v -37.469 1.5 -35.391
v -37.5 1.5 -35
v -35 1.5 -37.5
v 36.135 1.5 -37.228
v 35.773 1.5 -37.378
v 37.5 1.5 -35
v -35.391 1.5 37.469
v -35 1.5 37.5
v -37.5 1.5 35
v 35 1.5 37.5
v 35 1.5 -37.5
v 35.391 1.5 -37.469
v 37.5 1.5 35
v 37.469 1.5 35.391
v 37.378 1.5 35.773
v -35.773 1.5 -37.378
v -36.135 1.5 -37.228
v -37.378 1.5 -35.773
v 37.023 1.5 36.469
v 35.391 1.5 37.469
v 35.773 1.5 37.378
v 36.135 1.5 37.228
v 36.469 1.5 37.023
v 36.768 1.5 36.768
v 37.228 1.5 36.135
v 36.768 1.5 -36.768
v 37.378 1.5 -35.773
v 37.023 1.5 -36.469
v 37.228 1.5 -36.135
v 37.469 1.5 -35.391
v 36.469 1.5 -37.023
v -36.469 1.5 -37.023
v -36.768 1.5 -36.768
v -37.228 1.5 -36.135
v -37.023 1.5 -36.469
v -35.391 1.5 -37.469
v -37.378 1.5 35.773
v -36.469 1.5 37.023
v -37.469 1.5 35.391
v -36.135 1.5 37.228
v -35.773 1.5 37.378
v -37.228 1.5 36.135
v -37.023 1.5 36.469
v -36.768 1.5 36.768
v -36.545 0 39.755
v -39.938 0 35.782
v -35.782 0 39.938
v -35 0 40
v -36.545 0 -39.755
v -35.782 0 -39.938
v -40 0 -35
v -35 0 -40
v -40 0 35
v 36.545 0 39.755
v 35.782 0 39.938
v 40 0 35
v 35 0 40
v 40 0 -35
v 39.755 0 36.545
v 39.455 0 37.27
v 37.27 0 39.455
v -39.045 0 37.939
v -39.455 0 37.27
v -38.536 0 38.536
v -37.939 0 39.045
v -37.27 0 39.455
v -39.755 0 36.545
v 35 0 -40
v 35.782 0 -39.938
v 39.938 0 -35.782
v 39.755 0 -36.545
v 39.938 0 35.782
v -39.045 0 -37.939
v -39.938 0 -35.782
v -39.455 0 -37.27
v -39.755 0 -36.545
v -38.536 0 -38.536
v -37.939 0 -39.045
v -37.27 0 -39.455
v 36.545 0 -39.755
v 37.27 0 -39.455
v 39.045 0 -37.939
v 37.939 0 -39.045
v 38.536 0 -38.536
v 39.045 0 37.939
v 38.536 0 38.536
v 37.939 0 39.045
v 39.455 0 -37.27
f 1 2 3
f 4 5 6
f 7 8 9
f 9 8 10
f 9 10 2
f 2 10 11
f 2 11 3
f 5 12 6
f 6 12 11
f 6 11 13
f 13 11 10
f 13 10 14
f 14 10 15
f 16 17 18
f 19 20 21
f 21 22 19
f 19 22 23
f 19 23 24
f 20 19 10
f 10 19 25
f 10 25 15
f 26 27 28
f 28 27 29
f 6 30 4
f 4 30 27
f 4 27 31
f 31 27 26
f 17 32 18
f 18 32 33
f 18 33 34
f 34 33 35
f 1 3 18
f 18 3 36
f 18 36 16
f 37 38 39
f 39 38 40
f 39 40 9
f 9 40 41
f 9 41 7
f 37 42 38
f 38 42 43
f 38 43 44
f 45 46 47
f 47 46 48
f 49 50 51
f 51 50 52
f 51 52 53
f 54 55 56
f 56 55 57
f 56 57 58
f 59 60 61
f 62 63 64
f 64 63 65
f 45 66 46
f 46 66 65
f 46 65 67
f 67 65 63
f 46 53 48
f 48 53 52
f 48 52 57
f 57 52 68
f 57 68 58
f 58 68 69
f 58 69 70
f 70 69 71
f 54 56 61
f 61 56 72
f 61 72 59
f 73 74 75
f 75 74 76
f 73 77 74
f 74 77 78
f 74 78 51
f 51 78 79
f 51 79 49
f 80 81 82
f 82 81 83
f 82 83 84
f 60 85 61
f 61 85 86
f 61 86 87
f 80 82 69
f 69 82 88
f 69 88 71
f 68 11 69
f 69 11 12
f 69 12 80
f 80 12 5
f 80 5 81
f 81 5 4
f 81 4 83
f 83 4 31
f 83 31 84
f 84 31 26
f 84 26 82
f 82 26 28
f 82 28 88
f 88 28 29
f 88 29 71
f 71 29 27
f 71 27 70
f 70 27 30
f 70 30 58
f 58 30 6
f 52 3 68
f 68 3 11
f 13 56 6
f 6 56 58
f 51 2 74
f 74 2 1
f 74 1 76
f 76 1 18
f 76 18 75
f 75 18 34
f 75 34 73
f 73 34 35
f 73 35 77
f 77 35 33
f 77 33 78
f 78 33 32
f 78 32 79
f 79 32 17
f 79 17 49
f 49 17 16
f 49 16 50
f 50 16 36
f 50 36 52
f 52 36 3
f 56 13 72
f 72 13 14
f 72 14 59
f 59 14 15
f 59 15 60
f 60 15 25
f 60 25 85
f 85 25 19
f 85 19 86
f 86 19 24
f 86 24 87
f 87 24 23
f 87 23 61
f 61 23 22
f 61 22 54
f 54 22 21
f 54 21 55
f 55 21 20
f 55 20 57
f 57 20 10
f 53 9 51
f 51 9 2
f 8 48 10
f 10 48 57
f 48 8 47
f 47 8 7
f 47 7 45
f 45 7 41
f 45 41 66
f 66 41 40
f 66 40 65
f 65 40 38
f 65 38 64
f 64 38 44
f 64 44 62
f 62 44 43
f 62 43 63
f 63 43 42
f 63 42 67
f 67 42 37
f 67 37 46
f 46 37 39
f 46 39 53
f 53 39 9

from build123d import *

# Parameters (mm, degrees)
BOSS_EXTRUDE1_DEPTH = 1.5
CHAMFER1_SIZE       = 1.5
CHAMFER1_SIZE_2     = 2.5


with BuildPart() as part:
    # Sketch1 → Boss-Extrude1 (new body)
    with BuildSketch(Plane(origin=(0, 0, 0), x_dir=(1, 0, 0), z_dir=(0, 1, 0))):
        with BuildLine():
            Line((-35, 40), (35, 40))
            ThreePointArc((35, 40), (38.535533906, 38.535533906), (40, 35))
            Line((40, 35), (40, -35))
            ThreePointArc((40, -35), (38.535533906, -38.535533906), (35, -40))
            Line((35, -40), (-35, -40))
            ThreePointArc((-35, -40), (-38.535533906, -38.535533906), (-40, -35))
            Line((-40, -35), (-40, 35))
            ThreePointArc((-40, 35), (-38.535533906, 38.535533906), (-35, 40))
        make_face()
    extrude(amount=BOSS_EXTRUDE1_DEPTH)

    # Chamfer1
    # the kernel refuses this chamfer: 2.5, 1.5 mm, written as the material it takes off along each edge
    with BuildSketch(Plane(origin=(-35, 1.5, 35), x_dir=(0, 0, 1), z_dir=(1, 0, 0))) as chamfer1_piece_1:
        Polygon((5, CHAMFER1_SIZE), (5 - CHAMFER1_SIZE_2, 0), (5, 0), align=None)
    revolve(axis=Axis((-35, 1.5, 35), (0, -1, 0)), revolution_arc=90, mode=Mode.SUBTRACT)
    with BuildSketch(Plane(origin=(-40, 1.5, 35), x_dir=(-0.05518620705976808, -0.9984760801092615, 0), z_dir=(0, 0, -1)), Plane(origin=(-35, 1.5, -40), x_dir=(0, -0.9984760801092615, -0.05518620705976808), z_dir=(1, 0, 0)), Plane(origin=(35, 1.5, 40), x_dir=(0, -0.9984760801092615, 0.05518620705976808), z_dir=(-1, 0, 0)), Plane(origin=(40, 1.5, -35), x_dir=(0.05518620705976808, -0.9984760801092615, 0), z_dir=(0, 0, 1))) as chamfer1_piece_2:
        Polygon((CHAMFER1_SIZE * 0.998476080109, -CHAMFER1_SIZE * 0.0551862070598), (-CHAMFER1_SIZE_2 * 0.0551862070598, -CHAMFER1_SIZE_2 * 0.998476080109), (0, 0), align=None)
    extrude(amount=70, mode=Mode.SUBTRACT)
    with BuildSketch(Plane(origin=(-35, 1.5, -35), x_dir=(-1, 0, 0), z_dir=(0, 0, 1))) as chamfer1_piece_3:
        Polygon((5, CHAMFER1_SIZE), (5 - CHAMFER1_SIZE_2, 0), (5, 0), align=None)
    revolve(axis=Axis((-35, 1.5, -35), (0, -1, 0)), revolution_arc=90, mode=Mode.SUBTRACT)
    with BuildSketch(Plane(origin=(35, 1.5, -35), x_dir=(0, 0, -1), z_dir=(-1, 0, 0))) as chamfer1_piece_4:
        Polygon((5, CHAMFER1_SIZE), (5 - CHAMFER1_SIZE_2, 0), (5, 0), align=None)
    revolve(axis=Axis((35, 1.5, -35), (0, -1, 0)), revolution_arc=90, mode=Mode.SUBTRACT)
    with BuildSketch(Plane(origin=(35, 1.5, 35), x_dir=(1, 0, 0), z_dir=(0, 0, -1))) as chamfer1_piece_5:
        Polygon((5, CHAMFER1_SIZE), (5 - CHAMFER1_SIZE_2, 0), (5, 0), align=None)
    revolve(axis=Axis((35, 1.5, 35), (0, -1, 0)), revolution_arc=90, mode=Mode.SUBTRACT)


solid = part.part
